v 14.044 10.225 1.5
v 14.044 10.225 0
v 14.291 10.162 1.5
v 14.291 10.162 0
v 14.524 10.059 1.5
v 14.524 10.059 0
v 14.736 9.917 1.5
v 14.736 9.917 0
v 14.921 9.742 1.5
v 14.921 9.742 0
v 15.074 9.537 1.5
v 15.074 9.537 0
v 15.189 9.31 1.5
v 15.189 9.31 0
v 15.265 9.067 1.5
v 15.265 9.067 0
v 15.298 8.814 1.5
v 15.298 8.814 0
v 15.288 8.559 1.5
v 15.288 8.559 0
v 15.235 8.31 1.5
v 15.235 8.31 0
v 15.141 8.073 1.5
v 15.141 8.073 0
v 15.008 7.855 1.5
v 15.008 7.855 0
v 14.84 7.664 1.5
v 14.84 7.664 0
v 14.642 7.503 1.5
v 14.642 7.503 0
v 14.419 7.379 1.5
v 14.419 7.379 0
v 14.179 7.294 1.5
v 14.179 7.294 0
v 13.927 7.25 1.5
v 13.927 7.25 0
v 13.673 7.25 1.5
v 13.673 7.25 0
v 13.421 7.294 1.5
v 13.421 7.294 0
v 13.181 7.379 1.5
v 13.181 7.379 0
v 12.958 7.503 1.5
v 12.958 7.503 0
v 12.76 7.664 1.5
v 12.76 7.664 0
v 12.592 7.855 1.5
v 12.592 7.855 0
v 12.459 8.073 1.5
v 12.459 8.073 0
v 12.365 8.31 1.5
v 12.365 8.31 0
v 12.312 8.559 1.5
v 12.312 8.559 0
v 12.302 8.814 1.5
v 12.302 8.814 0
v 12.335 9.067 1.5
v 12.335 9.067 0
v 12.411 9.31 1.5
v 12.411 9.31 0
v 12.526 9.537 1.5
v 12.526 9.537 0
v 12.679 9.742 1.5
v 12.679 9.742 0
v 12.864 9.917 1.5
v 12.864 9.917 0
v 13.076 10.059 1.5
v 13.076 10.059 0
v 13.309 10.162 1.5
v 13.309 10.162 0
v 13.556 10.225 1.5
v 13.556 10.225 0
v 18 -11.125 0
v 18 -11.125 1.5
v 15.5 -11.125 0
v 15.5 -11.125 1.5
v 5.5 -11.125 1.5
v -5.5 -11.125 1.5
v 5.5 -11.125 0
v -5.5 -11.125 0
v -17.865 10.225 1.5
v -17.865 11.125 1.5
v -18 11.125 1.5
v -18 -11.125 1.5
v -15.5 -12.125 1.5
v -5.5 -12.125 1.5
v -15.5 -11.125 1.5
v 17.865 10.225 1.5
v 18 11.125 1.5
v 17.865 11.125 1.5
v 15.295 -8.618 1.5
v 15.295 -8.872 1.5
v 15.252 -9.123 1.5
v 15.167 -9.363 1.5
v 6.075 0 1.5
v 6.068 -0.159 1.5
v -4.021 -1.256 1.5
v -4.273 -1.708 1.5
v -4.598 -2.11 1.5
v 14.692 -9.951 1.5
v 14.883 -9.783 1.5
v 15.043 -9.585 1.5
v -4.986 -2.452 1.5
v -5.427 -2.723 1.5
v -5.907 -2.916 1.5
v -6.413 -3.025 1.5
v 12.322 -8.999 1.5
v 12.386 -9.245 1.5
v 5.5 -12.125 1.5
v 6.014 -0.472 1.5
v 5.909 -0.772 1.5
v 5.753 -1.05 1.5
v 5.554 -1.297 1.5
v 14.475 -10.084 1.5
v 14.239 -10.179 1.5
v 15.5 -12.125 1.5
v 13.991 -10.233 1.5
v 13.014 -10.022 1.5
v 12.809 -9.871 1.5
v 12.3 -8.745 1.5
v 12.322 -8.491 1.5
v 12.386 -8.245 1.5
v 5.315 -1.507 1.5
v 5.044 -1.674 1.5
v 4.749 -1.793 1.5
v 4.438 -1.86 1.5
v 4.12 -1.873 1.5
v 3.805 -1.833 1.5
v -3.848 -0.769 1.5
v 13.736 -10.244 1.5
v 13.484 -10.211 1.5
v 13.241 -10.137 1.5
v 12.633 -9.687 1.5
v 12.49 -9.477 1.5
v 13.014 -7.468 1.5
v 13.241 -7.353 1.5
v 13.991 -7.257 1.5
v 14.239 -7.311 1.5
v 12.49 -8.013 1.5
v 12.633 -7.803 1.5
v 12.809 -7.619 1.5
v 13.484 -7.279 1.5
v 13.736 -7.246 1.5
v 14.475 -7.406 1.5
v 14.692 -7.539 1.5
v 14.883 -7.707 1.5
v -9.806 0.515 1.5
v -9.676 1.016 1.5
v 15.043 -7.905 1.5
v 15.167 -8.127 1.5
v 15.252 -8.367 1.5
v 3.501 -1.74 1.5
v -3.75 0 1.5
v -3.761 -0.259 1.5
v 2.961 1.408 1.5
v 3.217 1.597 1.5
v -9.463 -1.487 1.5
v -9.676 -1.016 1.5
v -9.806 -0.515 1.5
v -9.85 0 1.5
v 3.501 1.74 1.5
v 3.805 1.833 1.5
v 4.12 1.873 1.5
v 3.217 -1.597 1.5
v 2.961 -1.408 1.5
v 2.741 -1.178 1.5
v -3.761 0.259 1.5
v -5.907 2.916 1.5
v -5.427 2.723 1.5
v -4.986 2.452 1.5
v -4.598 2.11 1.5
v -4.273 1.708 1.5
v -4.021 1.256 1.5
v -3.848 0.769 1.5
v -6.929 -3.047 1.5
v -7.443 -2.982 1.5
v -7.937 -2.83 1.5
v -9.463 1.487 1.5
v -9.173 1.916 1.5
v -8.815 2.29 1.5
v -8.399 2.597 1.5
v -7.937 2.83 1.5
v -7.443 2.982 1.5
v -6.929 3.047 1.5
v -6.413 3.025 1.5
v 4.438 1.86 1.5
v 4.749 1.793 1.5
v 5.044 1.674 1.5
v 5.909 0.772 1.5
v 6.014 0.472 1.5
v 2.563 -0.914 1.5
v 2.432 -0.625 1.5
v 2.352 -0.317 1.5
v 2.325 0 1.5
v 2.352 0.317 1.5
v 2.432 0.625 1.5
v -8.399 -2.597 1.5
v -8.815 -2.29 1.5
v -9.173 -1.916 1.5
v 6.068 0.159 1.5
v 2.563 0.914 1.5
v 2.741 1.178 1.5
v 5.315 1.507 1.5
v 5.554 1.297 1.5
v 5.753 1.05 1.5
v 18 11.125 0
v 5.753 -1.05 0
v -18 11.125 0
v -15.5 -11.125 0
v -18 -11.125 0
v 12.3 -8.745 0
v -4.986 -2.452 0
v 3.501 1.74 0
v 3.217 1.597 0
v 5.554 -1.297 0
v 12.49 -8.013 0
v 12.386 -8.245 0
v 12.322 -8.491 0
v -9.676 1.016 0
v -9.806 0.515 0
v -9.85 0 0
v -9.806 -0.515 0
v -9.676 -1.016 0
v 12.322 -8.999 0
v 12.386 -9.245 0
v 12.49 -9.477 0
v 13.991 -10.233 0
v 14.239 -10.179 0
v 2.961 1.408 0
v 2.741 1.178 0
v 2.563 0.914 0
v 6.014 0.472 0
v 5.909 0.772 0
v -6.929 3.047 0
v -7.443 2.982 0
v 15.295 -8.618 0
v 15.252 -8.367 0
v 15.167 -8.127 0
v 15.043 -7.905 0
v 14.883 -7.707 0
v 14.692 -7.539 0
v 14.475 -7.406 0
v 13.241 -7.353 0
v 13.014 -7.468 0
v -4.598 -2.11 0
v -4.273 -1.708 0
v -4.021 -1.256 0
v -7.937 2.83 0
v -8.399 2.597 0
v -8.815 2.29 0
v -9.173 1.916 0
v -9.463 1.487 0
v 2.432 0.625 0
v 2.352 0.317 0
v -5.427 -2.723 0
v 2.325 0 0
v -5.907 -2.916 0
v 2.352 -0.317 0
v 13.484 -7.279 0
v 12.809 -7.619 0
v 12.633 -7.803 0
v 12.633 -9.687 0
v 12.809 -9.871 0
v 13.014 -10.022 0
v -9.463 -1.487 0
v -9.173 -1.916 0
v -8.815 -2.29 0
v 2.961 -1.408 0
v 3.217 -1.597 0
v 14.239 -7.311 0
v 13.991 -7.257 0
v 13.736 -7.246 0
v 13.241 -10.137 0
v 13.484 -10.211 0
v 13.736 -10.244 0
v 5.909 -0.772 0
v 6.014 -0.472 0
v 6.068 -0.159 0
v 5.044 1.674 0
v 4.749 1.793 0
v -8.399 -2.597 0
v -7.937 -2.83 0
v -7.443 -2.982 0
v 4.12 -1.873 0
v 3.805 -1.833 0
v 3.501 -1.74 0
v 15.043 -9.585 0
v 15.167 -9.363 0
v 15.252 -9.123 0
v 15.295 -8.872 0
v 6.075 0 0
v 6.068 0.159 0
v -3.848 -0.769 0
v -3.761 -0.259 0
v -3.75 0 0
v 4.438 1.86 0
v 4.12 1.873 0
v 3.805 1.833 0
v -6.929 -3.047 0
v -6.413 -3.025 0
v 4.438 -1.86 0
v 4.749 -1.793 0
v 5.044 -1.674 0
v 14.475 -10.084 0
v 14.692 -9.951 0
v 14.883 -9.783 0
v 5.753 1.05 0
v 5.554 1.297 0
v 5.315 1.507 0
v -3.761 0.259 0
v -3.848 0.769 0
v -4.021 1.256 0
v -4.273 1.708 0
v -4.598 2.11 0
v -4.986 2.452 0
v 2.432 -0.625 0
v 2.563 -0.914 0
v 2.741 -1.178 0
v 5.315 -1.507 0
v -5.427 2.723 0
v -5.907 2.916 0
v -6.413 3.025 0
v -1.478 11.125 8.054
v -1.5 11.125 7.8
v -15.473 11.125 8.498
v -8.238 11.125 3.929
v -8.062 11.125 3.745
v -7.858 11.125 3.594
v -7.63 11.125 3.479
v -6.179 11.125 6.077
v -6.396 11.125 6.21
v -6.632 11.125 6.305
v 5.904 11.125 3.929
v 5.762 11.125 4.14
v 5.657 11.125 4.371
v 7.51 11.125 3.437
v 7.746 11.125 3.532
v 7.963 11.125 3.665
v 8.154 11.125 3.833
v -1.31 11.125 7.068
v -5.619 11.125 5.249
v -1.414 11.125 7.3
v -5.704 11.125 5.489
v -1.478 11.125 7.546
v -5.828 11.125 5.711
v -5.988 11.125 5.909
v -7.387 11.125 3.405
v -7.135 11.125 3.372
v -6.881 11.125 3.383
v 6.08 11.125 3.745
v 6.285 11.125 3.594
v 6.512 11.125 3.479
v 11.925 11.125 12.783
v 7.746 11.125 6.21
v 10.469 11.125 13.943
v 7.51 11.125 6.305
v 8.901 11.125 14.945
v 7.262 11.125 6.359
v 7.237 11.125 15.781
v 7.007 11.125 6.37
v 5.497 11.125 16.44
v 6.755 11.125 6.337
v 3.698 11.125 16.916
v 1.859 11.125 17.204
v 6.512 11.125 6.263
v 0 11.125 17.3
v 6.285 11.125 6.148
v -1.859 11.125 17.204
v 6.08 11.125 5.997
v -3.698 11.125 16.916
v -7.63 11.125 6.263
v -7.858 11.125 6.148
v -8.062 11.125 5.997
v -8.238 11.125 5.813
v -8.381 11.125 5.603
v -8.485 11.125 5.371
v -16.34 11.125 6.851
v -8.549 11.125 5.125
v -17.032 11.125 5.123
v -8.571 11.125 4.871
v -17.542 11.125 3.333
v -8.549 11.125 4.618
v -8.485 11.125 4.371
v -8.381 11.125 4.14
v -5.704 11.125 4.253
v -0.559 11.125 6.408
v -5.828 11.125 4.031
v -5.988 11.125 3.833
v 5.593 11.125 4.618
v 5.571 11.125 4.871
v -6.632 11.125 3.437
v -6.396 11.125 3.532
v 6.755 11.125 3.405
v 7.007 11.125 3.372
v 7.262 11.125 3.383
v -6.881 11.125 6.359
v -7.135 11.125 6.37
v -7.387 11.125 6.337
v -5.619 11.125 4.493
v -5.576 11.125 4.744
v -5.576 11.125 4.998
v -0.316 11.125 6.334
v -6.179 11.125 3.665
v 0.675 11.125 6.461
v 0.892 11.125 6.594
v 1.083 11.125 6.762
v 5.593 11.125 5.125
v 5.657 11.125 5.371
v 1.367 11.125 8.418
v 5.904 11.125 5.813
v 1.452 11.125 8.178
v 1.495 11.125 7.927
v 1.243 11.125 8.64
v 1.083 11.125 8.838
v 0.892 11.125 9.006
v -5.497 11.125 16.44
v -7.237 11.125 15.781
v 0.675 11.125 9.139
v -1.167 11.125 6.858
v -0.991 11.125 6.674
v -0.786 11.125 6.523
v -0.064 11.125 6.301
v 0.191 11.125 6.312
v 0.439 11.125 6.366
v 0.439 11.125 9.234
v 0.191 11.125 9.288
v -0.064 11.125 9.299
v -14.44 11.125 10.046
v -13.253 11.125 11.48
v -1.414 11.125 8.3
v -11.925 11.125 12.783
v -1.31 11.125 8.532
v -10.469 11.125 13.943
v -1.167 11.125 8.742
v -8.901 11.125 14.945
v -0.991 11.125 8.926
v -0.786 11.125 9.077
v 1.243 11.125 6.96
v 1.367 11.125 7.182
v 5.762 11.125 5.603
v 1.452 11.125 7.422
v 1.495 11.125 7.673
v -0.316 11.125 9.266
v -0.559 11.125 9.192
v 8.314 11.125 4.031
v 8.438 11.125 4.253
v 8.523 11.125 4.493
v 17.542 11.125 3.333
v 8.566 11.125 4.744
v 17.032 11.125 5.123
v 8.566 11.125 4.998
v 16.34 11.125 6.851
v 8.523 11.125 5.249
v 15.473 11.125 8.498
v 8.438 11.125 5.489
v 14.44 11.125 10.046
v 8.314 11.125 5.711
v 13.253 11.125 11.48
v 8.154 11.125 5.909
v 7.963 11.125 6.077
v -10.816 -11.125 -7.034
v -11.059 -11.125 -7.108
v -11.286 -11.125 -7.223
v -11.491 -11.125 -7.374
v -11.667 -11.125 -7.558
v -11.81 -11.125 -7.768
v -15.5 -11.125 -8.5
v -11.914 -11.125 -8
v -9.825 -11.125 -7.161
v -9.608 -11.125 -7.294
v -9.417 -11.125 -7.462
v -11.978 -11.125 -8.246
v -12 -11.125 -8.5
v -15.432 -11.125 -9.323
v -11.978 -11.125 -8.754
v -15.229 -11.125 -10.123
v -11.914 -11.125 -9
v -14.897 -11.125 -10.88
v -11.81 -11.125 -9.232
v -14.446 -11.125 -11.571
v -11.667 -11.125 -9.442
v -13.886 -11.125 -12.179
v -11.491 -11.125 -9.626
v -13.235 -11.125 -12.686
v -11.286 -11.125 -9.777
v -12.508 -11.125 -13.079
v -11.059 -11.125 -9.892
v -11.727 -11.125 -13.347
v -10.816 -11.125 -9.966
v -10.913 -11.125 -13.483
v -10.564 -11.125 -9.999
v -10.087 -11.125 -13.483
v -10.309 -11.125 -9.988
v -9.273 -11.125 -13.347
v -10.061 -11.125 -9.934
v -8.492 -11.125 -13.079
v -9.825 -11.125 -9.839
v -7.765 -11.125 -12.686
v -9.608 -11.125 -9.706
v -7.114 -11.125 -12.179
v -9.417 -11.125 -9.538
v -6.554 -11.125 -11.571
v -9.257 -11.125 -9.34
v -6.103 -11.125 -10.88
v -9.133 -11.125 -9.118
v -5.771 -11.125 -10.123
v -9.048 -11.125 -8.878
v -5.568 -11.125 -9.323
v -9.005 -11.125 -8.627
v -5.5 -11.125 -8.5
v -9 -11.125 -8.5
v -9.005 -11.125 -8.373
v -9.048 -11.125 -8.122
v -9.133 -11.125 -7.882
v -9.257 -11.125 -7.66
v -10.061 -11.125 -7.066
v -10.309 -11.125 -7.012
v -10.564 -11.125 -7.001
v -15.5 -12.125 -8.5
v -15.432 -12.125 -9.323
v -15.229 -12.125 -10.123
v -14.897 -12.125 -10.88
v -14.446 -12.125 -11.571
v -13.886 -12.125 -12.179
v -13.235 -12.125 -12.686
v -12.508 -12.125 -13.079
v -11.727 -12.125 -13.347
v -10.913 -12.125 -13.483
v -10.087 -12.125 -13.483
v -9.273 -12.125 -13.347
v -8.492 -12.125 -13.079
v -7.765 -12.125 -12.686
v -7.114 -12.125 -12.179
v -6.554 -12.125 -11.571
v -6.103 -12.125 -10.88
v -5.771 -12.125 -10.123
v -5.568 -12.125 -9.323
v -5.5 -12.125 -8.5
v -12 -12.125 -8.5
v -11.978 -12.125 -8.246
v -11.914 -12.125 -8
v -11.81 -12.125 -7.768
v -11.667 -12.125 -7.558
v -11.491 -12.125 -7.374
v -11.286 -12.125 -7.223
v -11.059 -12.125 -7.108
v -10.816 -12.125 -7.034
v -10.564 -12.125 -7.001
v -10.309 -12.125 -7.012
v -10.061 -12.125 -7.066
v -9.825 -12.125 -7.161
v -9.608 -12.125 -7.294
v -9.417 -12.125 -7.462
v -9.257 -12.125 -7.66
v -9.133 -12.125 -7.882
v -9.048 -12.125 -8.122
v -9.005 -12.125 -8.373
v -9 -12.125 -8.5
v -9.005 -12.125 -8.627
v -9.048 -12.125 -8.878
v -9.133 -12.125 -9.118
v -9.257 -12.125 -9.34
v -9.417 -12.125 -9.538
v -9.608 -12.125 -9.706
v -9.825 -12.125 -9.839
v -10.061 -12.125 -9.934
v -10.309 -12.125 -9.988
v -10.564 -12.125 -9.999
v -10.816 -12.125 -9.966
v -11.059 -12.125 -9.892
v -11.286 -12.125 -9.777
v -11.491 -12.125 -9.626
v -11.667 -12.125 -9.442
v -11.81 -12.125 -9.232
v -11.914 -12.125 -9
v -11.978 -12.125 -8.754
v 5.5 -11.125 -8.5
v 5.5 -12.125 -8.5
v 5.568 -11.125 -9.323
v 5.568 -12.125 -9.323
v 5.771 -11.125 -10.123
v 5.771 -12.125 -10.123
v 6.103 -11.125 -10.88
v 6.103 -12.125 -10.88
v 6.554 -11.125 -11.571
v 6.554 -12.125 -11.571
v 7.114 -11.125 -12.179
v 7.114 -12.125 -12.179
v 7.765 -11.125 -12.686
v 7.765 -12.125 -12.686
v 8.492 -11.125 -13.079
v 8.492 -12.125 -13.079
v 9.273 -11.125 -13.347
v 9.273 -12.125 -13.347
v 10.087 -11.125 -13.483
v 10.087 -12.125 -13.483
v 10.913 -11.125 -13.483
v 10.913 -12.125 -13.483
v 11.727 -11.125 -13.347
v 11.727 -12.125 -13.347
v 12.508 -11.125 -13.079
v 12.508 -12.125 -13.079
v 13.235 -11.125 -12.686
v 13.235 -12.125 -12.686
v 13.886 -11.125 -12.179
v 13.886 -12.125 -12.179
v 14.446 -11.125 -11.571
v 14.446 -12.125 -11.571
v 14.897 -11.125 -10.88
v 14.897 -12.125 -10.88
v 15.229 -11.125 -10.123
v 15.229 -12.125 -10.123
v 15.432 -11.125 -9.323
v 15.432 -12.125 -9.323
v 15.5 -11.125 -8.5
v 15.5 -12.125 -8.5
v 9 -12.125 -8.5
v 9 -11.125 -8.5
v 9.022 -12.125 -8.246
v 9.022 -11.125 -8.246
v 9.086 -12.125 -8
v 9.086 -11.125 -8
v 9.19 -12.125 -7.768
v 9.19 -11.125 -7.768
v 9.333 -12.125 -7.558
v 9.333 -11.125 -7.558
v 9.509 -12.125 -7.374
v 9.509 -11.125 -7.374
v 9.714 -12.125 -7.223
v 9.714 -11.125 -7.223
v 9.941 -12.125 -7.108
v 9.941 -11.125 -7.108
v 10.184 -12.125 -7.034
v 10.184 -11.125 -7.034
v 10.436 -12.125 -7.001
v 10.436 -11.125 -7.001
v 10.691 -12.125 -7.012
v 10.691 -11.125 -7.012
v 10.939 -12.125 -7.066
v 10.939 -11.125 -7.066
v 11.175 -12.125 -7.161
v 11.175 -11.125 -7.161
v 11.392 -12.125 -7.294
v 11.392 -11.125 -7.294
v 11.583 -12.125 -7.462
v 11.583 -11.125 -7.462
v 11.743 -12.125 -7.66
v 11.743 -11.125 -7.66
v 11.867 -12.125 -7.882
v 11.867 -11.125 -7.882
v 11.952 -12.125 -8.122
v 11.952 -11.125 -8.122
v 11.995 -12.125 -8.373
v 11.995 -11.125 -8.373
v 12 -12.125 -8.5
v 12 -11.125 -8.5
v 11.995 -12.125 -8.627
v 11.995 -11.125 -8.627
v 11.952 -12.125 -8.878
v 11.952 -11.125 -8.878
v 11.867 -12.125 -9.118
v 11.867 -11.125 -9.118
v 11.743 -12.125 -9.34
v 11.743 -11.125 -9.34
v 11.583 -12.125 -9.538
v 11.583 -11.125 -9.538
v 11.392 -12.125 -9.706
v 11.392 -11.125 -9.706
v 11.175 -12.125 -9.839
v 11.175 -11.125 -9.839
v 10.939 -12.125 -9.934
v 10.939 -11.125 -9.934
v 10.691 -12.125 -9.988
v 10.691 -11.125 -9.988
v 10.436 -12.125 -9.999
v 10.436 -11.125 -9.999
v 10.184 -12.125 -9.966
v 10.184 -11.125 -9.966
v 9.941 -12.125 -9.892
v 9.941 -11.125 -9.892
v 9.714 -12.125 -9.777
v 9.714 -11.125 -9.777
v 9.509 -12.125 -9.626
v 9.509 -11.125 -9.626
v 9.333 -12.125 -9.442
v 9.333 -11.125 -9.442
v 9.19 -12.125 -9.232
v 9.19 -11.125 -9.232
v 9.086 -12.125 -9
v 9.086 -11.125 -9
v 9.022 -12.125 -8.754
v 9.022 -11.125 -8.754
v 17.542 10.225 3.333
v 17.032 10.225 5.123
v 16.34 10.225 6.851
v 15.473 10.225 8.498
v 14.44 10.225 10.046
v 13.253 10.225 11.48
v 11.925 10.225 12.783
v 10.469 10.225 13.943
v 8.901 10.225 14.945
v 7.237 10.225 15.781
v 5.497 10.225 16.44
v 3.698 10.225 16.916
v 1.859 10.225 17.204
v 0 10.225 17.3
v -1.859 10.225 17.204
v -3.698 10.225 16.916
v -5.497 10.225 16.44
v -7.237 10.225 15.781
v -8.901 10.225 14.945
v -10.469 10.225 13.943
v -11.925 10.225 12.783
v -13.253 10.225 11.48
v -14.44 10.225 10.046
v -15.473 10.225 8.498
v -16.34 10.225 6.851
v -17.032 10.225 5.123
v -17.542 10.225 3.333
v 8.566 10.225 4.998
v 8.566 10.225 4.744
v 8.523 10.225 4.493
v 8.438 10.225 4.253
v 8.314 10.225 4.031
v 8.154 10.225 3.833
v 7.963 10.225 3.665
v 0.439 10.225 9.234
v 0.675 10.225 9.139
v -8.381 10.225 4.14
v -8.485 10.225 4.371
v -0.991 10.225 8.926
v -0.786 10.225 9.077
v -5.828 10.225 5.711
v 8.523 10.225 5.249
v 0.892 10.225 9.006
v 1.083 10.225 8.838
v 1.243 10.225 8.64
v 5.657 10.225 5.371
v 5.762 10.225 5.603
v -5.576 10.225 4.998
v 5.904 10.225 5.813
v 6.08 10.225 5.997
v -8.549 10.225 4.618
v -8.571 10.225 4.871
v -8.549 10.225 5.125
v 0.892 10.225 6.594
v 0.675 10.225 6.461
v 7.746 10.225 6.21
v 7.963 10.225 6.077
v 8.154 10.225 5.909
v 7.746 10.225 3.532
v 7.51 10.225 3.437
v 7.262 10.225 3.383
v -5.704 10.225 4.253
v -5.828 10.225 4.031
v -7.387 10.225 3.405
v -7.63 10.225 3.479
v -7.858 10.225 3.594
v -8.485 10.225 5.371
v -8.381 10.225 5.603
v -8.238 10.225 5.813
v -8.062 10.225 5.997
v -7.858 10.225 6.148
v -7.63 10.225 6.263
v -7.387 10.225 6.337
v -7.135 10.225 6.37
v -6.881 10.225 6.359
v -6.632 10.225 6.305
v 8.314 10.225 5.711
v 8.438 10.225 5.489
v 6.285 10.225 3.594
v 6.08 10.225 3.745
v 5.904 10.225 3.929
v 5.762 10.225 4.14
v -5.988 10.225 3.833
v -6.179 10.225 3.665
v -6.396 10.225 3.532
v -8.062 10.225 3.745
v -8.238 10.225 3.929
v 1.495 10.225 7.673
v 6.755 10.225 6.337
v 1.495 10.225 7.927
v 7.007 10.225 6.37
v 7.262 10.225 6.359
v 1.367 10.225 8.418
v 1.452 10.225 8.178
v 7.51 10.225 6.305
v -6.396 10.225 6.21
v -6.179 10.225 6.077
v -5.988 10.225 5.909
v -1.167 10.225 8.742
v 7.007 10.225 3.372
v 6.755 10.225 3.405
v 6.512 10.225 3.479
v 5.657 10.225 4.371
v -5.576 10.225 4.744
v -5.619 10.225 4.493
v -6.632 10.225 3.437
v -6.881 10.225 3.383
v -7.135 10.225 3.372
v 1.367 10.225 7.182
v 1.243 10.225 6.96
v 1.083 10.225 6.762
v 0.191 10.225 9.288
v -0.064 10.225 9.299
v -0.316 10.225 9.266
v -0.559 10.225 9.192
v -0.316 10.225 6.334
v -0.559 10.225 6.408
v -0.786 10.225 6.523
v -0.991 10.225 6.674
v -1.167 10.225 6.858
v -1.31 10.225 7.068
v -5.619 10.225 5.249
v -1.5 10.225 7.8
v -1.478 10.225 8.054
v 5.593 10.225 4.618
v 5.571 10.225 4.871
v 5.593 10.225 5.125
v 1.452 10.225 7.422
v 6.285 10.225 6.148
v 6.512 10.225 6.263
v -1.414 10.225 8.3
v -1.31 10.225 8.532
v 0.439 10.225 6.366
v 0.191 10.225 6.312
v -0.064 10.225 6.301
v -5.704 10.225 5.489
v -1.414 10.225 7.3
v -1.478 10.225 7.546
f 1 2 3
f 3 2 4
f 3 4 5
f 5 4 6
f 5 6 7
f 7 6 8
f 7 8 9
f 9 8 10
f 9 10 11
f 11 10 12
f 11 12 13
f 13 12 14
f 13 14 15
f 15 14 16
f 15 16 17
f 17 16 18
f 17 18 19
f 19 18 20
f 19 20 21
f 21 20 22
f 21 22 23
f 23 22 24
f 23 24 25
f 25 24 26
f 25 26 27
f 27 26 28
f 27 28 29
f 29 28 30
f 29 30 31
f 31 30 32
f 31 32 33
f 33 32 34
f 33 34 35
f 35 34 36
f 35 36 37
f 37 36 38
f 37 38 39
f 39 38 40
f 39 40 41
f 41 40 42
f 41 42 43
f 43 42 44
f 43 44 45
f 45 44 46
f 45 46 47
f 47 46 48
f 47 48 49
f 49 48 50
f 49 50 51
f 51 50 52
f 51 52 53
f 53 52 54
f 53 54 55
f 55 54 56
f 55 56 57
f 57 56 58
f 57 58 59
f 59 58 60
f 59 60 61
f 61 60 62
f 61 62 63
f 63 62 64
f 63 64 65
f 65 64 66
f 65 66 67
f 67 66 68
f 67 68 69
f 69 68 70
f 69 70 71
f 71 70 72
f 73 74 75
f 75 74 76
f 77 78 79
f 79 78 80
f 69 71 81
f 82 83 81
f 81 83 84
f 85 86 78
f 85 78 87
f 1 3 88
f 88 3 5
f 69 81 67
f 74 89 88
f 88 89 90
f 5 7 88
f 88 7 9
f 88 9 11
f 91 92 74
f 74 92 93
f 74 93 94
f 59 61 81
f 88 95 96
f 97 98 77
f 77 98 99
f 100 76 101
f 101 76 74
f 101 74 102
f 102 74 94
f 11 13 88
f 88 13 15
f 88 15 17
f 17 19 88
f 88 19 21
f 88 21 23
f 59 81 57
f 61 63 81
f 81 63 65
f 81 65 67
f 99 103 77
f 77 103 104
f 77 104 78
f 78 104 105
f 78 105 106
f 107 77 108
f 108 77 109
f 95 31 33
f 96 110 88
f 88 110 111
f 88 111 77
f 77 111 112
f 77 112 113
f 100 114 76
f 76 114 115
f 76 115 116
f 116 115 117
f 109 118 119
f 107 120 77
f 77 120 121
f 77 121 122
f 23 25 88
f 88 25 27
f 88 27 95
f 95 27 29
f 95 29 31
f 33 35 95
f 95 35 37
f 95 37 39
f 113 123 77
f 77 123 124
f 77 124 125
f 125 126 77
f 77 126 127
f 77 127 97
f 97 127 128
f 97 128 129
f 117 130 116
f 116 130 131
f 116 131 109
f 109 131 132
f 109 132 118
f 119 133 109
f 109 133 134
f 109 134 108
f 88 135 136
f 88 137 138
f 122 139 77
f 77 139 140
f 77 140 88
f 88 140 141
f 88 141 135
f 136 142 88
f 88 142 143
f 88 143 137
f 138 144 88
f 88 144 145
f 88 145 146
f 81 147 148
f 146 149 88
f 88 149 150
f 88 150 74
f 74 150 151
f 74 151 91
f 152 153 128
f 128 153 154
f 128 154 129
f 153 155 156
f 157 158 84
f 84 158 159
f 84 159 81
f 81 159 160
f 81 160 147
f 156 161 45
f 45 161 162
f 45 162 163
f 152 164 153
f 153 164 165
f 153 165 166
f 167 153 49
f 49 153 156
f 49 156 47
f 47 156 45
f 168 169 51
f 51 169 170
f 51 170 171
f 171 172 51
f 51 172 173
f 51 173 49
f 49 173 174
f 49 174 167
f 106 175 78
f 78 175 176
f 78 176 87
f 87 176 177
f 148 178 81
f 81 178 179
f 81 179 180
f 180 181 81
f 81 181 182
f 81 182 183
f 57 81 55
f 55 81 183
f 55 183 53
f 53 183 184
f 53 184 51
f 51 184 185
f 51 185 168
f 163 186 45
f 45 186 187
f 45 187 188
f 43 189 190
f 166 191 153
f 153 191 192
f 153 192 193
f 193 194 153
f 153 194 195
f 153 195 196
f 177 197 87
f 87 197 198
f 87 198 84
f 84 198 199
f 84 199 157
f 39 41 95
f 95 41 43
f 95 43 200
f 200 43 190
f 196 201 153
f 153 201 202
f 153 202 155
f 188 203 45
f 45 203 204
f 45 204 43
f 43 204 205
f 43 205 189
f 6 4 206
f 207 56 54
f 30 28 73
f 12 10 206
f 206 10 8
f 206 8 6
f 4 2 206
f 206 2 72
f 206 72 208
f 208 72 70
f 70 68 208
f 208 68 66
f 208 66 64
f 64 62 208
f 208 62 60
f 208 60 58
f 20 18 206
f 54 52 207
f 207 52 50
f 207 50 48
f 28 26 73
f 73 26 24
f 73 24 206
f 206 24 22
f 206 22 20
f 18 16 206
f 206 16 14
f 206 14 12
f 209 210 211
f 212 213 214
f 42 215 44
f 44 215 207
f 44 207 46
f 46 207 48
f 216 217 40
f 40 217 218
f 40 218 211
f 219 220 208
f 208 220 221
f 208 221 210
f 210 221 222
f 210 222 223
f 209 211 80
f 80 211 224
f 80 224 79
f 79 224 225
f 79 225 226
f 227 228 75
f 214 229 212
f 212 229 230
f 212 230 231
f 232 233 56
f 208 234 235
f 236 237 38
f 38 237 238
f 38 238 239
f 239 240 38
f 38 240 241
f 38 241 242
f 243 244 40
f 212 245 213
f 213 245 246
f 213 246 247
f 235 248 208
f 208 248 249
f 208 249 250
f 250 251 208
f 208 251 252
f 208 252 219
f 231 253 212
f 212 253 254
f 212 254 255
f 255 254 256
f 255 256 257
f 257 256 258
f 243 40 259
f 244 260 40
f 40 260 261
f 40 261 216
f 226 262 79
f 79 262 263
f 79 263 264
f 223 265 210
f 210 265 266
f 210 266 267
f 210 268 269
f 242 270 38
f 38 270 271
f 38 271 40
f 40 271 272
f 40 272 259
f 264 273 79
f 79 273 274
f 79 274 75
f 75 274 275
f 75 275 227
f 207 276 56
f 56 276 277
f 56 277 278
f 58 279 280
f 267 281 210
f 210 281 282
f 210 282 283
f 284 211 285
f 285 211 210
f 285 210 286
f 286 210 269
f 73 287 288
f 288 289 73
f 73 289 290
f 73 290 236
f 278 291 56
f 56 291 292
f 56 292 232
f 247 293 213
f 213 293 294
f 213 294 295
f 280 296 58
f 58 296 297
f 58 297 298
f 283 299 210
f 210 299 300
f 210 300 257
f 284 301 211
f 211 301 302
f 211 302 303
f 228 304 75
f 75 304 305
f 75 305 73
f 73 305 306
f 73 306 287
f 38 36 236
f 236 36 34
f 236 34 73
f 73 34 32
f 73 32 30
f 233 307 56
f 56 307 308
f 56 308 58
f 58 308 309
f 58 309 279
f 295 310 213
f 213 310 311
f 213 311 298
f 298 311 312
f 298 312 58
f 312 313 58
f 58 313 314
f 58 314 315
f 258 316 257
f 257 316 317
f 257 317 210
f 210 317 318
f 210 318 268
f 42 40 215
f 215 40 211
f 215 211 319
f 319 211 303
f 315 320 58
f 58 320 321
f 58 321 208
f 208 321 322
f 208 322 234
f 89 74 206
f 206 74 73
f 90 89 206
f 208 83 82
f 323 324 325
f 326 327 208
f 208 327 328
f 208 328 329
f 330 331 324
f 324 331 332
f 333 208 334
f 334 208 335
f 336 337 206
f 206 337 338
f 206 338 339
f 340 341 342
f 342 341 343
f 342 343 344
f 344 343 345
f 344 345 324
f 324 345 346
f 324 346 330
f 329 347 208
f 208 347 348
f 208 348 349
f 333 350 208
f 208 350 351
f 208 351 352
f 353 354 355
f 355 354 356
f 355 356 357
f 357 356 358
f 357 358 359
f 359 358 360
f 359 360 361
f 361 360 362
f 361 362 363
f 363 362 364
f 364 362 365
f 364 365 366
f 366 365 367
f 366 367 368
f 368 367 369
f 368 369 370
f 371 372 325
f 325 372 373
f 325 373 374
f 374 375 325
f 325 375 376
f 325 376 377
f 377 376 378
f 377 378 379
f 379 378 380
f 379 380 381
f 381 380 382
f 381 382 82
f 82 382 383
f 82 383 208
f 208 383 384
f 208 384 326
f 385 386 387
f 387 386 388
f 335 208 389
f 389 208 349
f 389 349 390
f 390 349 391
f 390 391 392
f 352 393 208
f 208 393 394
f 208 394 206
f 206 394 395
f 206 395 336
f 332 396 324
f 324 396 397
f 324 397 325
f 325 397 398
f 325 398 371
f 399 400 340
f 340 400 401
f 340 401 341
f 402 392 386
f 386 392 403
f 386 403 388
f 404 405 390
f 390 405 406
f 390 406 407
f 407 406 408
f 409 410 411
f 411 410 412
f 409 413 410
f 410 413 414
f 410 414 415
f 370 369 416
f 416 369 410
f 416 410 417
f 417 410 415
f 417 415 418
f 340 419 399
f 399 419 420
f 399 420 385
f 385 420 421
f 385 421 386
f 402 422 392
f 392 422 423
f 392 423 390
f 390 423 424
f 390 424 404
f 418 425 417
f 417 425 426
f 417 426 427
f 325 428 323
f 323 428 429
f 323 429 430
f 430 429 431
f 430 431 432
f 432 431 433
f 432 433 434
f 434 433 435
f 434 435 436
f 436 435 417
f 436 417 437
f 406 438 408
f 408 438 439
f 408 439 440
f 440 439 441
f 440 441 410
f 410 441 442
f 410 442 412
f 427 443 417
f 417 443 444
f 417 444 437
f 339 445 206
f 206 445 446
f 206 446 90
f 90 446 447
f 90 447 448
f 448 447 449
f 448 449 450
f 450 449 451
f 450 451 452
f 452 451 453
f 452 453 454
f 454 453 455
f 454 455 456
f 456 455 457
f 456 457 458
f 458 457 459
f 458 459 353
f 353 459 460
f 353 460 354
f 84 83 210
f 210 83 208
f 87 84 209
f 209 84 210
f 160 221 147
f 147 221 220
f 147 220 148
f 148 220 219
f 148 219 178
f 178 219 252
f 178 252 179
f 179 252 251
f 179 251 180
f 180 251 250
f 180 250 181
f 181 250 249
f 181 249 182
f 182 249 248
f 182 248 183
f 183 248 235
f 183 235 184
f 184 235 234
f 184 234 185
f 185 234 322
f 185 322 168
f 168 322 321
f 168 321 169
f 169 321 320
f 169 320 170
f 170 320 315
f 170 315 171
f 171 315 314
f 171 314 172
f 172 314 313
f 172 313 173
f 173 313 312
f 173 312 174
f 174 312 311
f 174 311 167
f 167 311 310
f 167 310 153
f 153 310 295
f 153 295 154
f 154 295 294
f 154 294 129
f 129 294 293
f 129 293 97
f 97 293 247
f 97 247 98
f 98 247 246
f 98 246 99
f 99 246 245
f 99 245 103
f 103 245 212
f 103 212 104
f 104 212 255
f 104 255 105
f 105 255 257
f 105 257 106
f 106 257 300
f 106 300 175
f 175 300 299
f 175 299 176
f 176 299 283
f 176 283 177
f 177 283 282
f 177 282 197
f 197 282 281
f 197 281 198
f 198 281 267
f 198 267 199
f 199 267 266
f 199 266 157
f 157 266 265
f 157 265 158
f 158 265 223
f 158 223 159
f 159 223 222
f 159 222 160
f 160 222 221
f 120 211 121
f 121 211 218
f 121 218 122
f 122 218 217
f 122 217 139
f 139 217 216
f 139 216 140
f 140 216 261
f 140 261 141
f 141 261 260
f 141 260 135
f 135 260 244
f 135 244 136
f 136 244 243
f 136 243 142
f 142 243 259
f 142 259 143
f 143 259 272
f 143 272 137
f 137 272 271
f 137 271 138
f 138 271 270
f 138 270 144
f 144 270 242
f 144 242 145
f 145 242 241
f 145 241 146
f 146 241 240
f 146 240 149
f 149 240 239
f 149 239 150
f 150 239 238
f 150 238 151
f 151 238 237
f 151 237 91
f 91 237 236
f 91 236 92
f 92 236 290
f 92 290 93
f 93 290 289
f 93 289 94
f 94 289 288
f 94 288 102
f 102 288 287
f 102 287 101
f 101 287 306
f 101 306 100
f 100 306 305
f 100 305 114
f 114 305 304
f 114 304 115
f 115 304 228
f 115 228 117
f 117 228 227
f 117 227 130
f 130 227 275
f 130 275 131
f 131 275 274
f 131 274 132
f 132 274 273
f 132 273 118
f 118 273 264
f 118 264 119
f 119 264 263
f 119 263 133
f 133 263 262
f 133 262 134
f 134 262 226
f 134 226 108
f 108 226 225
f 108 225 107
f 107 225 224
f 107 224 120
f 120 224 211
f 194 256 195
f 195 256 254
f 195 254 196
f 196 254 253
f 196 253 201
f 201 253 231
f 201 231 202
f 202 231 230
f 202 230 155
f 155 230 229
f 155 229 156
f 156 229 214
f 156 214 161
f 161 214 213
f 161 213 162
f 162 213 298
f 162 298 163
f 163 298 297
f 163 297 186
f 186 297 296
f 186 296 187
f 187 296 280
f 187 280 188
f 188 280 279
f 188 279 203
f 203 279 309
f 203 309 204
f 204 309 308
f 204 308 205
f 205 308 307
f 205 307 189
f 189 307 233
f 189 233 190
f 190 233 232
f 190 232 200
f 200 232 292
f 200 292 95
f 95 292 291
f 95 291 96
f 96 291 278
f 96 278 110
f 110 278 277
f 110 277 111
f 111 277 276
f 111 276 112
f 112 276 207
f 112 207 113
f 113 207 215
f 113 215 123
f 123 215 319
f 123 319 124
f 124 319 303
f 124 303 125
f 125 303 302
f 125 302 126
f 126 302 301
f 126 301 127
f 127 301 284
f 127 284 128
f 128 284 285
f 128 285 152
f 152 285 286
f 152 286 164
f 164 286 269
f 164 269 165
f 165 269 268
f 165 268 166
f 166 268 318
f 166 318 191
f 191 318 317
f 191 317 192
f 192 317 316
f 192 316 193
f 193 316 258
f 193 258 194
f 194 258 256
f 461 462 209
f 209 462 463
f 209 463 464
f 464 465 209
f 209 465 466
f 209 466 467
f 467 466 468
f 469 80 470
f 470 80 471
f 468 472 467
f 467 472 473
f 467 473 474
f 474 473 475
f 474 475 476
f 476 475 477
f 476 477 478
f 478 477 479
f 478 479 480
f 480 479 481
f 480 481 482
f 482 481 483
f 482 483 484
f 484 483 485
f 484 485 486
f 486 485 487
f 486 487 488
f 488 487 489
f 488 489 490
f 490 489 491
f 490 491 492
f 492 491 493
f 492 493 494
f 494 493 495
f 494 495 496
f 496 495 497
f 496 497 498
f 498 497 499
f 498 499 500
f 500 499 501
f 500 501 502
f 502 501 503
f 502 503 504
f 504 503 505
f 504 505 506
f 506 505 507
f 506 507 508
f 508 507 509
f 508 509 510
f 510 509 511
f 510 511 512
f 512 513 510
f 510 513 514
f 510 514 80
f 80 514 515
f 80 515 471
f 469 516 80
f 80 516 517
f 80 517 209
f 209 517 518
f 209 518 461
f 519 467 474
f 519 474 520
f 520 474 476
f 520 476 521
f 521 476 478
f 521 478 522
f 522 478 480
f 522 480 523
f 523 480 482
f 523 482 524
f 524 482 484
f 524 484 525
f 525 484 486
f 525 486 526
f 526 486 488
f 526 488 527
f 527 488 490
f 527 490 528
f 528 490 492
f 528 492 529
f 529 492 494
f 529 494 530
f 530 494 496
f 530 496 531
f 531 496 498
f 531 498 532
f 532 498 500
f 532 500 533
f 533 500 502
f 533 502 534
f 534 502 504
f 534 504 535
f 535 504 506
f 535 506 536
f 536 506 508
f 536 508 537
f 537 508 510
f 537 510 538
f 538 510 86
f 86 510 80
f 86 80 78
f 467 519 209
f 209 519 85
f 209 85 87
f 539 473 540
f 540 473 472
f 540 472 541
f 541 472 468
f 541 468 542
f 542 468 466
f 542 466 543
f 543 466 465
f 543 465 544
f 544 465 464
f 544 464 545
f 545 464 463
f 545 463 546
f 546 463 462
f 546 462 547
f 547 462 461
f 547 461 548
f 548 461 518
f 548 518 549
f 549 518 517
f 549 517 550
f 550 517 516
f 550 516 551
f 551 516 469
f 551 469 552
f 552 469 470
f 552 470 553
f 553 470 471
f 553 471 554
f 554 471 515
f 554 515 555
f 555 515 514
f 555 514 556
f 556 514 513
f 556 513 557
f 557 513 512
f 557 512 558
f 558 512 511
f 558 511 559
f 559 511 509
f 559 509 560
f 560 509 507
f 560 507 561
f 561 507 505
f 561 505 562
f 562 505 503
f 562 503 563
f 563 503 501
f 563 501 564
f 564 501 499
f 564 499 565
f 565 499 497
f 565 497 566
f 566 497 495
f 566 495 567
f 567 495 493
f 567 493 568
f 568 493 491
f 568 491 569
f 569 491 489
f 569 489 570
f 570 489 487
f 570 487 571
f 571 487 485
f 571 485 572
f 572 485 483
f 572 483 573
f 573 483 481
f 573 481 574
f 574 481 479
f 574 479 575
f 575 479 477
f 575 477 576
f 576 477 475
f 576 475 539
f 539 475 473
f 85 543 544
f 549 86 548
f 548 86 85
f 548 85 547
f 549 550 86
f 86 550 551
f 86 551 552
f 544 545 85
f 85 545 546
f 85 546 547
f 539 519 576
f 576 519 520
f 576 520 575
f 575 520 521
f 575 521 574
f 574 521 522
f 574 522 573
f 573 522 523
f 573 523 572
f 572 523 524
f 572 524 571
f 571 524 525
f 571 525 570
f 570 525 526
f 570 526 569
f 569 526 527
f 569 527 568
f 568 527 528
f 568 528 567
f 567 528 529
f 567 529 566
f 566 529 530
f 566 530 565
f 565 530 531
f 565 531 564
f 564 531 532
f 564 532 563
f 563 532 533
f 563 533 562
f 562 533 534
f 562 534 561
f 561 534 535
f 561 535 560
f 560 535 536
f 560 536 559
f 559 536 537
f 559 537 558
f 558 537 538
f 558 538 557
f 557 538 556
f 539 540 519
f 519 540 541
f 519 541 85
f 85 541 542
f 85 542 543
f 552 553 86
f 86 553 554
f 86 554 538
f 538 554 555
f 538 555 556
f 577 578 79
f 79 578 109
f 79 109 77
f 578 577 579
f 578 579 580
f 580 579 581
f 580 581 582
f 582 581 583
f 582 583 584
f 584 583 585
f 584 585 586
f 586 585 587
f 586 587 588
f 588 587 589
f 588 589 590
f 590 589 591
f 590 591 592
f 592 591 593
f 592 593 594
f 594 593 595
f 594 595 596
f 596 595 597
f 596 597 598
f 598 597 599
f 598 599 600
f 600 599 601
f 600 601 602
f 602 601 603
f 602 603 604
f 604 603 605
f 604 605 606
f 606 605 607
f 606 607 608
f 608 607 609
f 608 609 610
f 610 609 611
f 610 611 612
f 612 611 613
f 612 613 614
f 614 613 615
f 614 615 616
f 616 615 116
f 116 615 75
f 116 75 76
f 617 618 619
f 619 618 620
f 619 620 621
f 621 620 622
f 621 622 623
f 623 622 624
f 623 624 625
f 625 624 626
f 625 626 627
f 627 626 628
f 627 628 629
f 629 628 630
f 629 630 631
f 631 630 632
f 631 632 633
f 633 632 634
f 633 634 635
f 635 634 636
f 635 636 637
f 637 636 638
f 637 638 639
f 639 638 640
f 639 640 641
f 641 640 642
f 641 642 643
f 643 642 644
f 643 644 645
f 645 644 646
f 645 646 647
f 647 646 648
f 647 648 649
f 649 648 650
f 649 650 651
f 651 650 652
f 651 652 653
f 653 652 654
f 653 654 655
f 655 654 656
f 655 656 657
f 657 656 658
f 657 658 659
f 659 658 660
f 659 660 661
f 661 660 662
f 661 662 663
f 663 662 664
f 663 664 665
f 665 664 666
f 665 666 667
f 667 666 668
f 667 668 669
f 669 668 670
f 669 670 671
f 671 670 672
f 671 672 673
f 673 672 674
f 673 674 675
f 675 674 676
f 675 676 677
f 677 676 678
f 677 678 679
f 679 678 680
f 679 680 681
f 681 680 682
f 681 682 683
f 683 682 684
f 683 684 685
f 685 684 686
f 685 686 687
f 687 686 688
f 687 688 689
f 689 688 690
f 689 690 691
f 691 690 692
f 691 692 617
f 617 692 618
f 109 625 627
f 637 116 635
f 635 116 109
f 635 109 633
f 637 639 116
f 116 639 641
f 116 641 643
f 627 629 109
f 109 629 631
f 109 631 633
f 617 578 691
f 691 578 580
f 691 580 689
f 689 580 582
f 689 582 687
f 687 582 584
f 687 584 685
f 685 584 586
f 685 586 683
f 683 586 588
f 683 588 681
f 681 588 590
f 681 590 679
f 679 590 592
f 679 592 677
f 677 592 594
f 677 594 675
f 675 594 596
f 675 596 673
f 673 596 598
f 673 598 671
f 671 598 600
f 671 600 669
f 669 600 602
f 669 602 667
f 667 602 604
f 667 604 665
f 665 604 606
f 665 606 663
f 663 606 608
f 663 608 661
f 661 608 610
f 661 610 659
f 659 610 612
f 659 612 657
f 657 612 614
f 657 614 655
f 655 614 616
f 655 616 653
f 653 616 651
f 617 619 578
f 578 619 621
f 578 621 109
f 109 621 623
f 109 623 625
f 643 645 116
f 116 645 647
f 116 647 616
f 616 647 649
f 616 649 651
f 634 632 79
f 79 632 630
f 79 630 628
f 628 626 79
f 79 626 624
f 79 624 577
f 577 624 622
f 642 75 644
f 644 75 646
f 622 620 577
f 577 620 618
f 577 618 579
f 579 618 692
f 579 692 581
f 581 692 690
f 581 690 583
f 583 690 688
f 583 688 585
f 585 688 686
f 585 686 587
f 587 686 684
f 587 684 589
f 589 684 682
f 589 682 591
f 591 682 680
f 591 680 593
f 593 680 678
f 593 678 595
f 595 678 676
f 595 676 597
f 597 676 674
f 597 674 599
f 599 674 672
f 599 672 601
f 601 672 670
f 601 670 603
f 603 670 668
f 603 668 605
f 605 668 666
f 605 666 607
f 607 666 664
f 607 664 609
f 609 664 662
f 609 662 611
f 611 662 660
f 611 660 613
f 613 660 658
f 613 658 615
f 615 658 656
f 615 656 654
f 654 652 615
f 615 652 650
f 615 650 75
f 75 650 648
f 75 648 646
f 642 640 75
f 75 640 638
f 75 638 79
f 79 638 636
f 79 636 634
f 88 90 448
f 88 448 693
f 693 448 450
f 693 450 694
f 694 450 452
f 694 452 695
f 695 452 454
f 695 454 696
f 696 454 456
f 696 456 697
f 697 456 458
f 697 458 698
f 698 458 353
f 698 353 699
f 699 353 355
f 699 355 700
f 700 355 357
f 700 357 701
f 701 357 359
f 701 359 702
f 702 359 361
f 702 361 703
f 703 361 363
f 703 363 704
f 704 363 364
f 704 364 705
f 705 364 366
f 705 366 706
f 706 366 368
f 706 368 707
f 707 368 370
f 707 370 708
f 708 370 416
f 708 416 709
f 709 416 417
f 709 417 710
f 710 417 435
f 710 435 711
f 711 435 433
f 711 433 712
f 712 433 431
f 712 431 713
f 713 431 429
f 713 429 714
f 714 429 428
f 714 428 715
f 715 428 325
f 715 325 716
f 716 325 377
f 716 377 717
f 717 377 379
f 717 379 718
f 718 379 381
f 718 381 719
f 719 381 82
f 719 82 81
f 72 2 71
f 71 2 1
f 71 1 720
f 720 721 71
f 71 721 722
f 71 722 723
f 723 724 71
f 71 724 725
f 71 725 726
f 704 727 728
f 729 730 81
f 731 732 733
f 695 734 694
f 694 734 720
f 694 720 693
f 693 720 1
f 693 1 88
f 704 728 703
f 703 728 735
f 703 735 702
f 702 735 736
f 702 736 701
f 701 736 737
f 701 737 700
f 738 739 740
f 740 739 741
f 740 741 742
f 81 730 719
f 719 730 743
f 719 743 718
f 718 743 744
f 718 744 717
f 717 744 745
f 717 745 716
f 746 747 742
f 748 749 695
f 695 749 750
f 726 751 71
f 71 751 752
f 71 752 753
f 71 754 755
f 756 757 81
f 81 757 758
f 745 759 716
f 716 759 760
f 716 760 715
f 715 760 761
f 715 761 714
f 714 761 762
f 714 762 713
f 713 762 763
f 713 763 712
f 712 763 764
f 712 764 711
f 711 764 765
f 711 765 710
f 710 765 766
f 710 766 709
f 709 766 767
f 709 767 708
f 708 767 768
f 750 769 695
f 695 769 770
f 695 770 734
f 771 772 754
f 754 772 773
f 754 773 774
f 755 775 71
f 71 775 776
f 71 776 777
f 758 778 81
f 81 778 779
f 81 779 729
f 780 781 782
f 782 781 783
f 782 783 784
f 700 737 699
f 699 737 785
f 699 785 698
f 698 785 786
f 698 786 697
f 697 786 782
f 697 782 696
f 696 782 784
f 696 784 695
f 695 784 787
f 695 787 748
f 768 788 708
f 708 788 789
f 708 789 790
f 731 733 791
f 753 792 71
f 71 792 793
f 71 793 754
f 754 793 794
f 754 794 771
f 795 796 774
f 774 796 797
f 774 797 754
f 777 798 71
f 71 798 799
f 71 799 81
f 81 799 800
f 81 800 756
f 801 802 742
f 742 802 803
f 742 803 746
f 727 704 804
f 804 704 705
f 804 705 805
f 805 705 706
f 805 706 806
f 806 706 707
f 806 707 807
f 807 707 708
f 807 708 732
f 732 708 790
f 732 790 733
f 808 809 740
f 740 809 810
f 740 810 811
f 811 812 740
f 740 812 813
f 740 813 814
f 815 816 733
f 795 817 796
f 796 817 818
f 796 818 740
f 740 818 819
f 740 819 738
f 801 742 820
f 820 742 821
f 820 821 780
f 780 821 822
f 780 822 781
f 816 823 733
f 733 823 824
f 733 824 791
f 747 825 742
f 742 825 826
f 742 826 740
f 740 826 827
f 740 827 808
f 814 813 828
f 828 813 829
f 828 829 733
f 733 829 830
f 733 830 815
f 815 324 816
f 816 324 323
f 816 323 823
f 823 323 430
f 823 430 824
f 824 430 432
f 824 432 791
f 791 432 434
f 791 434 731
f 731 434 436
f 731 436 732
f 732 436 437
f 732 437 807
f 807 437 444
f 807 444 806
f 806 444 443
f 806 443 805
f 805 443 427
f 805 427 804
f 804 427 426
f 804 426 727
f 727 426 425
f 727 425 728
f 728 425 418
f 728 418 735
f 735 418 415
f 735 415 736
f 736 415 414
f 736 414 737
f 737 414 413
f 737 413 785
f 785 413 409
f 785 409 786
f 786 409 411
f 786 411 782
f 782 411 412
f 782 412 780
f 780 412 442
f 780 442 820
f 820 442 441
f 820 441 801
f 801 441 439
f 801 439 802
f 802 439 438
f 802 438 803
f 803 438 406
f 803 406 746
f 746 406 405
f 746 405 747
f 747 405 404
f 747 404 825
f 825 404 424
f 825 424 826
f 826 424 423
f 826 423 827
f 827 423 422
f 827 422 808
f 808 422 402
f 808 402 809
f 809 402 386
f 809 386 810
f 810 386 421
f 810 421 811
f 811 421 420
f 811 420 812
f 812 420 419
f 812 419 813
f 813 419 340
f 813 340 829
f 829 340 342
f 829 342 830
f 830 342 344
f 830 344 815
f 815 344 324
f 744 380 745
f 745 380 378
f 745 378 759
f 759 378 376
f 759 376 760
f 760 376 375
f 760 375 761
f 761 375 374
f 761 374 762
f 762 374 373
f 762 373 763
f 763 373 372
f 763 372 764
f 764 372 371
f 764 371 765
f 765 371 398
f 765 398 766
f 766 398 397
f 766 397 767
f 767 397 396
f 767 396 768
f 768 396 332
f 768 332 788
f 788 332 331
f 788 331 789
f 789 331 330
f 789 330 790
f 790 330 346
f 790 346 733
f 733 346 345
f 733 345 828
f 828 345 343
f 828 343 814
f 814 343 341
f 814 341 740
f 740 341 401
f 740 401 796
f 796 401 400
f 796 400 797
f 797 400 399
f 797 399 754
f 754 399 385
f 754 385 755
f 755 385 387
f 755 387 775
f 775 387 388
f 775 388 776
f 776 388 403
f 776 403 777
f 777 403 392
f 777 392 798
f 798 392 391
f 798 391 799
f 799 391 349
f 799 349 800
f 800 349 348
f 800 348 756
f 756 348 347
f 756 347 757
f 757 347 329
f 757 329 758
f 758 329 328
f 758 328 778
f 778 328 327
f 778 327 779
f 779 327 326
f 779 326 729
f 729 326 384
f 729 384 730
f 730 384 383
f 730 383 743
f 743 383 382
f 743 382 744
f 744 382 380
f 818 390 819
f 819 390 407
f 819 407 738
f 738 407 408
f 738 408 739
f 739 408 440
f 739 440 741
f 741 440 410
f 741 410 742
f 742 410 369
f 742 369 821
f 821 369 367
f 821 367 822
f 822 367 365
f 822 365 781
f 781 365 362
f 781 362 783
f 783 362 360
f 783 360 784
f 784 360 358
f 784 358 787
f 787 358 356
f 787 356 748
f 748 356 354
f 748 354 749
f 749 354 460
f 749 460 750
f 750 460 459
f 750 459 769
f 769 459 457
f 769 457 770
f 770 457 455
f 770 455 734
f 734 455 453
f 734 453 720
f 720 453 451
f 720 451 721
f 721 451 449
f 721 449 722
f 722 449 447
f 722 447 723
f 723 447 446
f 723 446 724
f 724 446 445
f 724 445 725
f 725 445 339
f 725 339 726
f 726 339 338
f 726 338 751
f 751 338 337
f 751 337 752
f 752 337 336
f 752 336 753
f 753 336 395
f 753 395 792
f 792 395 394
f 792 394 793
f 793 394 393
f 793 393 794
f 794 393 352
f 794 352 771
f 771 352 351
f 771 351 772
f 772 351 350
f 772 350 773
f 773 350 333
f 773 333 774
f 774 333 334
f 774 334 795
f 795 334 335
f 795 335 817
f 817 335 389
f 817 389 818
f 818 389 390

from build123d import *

# Parameters (mm, degrees)
CROQUIS1_W              = 36
CROQUIS1_H              = 22.25
CROQUIS1_R              = 1.5
CROQUIS1_R_2            = 3.05
CROQUIS1_R_3            = 1.875
SALIENTE_EXTRUIR1_DEPTH = 1.5
CROQUIS2_R              = 1.5
CROQUIS2_W              = 10
CROQUIS2_H              = 1.5
SALIENTE_EXTRUIR2_DEPTH = 1
CROQUIS3_R              = 1.500000001
CROQUIS3_R_2            = 1.5
SALIENTE_EXTRUIR6_DEPTH = 0.9


with BuildPart() as part:
    # Croquis1 → Saliente-Extruir1 (new body)
    with BuildSketch(Plane.XY):
        Rectangle(CROQUIS1_W, CROQUIS1_H)
        with Locations((13.8, 8.745)):
            Circle(CROQUIS1_R, mode=Mode.SUBTRACT)
        with Locations((-6.8, 0)):
            Circle(CROQUIS1_R_2, mode=Mode.SUBTRACT)
        with Locations(Location((13.8, -8.745, 0), (0, 0, 180))):
            Circle(CROQUIS1_R, mode=Mode.SUBTRACT)
        with Locations((4.2, 0)):
            Circle(CROQUIS1_R_3, mode=Mode.SUBTRACT)
    extrude(amount=SALIENTE_EXTRUIR1_DEPTH)

    # Croquis2 → Saliente-Extruir2 (add)
    # profile 1 of 4: a face of its own
    with BuildSketch(Plane.XZ.offset(11.125)):
        with BuildLine():
            Line((-5.5, -8.5), (-5.5, 0))
            Line((-5.5, 0), (-15.5, 0))
            Line((-15.5, 0), (-15.5, -8.5))
            ThreePointArc((-15.5, -8.5), (-10.5, -13.5), (-5.5, -8.5))
        make_face()
        with Locations((-10.5, -8.5)):
            Circle(CROQUIS2_R, mode=Mode.SUBTRACT)
    # profile 2 of 4: a face of its own
    with BuildSketch(Plane.XZ.offset(11.125)):
        with Locations((-10.5, 0.75)):
            Rectangle(CROQUIS2_W, CROQUIS2_H)
    # profile 3 of 4: a face of its own
    with BuildSketch(Plane.XZ.offset(11.125)):
        with BuildLine():
            Line((15.5, 0), (5.5, 0))
            Line((5.5, 0), (5.5, -8.5))
            ThreePointArc((5.5, -8.5), (10.5, -13.5), (15.5, -8.5))
            Line((15.5, -8.5), (15.5, 0))
        make_face()
        with Locations((10.5, -8.5)):
            Circle(CROQUIS2_R, mode=Mode.SUBTRACT)
    # profile 4 of 4: a face of its own
    with BuildSketch(Plane.XZ.offset(11.125)):
        with Locations((10.5, 0.75)):
            Rectangle(CROQUIS2_W, CROQUIS2_H)
    extrude(amount=SALIENTE_EXTRUIR2_DEPTH)

    # Croquis3 → Saliente-Extruir6 (add)
    # profile 1 of 2: a face of its own
    with BuildSketch(Plane(origin=(0, 11.125, 0), x_dir=(1, 0, 0), z_dir=(0, 1, 0))):
        with BuildLine():
            ThreePointArc((-17.865049678, -1.5), (0, -17.3), (17.865049678, -1.5))
            Line((17.865049678, -1.5), (-17.865049678, -1.5))
        make_face()
        with Locations(Location((-7.071067812, -4.871067812, 0), (0, 0, 180))):
            Circle(CROQUIS3_R, mode=Mode.SUBTRACT)
        with Locations(Location((0, -7.8, 0), (0, 0, 180))):
            Circle(CROQUIS3_R_2, mode=Mode.SUBTRACT)
        with Locations(Location((7.071067812, -4.871067812, 0), (0, 0, 180))):
            Circle(CROQUIS3_R_2, mode=Mode.SUBTRACT)
    # profile 2 of 2: a face of its own
    with BuildSketch(Plane(origin=(0, 11.125, 0), x_dir=(1, 0, 0), z_dir=(0, 1, 0))):
        with BuildLine():
            ThreePointArc((17.865049678, -1.5), (17.941399597, -0.751268579), (17.986383739, 0))
            Line((17.986383739, 0), (-17.986383739, 0))
            ThreePointArc((-17.986383739, 0), (-17.941399597, -0.751268579), (-17.865049678, -1.5))
            Line((-17.865049678, -1.5), (17.865049678, -1.5))
        make_face()
    extrude(amount=-SALIENTE_EXTRUIR6_DEPTH)


solid = part.part
